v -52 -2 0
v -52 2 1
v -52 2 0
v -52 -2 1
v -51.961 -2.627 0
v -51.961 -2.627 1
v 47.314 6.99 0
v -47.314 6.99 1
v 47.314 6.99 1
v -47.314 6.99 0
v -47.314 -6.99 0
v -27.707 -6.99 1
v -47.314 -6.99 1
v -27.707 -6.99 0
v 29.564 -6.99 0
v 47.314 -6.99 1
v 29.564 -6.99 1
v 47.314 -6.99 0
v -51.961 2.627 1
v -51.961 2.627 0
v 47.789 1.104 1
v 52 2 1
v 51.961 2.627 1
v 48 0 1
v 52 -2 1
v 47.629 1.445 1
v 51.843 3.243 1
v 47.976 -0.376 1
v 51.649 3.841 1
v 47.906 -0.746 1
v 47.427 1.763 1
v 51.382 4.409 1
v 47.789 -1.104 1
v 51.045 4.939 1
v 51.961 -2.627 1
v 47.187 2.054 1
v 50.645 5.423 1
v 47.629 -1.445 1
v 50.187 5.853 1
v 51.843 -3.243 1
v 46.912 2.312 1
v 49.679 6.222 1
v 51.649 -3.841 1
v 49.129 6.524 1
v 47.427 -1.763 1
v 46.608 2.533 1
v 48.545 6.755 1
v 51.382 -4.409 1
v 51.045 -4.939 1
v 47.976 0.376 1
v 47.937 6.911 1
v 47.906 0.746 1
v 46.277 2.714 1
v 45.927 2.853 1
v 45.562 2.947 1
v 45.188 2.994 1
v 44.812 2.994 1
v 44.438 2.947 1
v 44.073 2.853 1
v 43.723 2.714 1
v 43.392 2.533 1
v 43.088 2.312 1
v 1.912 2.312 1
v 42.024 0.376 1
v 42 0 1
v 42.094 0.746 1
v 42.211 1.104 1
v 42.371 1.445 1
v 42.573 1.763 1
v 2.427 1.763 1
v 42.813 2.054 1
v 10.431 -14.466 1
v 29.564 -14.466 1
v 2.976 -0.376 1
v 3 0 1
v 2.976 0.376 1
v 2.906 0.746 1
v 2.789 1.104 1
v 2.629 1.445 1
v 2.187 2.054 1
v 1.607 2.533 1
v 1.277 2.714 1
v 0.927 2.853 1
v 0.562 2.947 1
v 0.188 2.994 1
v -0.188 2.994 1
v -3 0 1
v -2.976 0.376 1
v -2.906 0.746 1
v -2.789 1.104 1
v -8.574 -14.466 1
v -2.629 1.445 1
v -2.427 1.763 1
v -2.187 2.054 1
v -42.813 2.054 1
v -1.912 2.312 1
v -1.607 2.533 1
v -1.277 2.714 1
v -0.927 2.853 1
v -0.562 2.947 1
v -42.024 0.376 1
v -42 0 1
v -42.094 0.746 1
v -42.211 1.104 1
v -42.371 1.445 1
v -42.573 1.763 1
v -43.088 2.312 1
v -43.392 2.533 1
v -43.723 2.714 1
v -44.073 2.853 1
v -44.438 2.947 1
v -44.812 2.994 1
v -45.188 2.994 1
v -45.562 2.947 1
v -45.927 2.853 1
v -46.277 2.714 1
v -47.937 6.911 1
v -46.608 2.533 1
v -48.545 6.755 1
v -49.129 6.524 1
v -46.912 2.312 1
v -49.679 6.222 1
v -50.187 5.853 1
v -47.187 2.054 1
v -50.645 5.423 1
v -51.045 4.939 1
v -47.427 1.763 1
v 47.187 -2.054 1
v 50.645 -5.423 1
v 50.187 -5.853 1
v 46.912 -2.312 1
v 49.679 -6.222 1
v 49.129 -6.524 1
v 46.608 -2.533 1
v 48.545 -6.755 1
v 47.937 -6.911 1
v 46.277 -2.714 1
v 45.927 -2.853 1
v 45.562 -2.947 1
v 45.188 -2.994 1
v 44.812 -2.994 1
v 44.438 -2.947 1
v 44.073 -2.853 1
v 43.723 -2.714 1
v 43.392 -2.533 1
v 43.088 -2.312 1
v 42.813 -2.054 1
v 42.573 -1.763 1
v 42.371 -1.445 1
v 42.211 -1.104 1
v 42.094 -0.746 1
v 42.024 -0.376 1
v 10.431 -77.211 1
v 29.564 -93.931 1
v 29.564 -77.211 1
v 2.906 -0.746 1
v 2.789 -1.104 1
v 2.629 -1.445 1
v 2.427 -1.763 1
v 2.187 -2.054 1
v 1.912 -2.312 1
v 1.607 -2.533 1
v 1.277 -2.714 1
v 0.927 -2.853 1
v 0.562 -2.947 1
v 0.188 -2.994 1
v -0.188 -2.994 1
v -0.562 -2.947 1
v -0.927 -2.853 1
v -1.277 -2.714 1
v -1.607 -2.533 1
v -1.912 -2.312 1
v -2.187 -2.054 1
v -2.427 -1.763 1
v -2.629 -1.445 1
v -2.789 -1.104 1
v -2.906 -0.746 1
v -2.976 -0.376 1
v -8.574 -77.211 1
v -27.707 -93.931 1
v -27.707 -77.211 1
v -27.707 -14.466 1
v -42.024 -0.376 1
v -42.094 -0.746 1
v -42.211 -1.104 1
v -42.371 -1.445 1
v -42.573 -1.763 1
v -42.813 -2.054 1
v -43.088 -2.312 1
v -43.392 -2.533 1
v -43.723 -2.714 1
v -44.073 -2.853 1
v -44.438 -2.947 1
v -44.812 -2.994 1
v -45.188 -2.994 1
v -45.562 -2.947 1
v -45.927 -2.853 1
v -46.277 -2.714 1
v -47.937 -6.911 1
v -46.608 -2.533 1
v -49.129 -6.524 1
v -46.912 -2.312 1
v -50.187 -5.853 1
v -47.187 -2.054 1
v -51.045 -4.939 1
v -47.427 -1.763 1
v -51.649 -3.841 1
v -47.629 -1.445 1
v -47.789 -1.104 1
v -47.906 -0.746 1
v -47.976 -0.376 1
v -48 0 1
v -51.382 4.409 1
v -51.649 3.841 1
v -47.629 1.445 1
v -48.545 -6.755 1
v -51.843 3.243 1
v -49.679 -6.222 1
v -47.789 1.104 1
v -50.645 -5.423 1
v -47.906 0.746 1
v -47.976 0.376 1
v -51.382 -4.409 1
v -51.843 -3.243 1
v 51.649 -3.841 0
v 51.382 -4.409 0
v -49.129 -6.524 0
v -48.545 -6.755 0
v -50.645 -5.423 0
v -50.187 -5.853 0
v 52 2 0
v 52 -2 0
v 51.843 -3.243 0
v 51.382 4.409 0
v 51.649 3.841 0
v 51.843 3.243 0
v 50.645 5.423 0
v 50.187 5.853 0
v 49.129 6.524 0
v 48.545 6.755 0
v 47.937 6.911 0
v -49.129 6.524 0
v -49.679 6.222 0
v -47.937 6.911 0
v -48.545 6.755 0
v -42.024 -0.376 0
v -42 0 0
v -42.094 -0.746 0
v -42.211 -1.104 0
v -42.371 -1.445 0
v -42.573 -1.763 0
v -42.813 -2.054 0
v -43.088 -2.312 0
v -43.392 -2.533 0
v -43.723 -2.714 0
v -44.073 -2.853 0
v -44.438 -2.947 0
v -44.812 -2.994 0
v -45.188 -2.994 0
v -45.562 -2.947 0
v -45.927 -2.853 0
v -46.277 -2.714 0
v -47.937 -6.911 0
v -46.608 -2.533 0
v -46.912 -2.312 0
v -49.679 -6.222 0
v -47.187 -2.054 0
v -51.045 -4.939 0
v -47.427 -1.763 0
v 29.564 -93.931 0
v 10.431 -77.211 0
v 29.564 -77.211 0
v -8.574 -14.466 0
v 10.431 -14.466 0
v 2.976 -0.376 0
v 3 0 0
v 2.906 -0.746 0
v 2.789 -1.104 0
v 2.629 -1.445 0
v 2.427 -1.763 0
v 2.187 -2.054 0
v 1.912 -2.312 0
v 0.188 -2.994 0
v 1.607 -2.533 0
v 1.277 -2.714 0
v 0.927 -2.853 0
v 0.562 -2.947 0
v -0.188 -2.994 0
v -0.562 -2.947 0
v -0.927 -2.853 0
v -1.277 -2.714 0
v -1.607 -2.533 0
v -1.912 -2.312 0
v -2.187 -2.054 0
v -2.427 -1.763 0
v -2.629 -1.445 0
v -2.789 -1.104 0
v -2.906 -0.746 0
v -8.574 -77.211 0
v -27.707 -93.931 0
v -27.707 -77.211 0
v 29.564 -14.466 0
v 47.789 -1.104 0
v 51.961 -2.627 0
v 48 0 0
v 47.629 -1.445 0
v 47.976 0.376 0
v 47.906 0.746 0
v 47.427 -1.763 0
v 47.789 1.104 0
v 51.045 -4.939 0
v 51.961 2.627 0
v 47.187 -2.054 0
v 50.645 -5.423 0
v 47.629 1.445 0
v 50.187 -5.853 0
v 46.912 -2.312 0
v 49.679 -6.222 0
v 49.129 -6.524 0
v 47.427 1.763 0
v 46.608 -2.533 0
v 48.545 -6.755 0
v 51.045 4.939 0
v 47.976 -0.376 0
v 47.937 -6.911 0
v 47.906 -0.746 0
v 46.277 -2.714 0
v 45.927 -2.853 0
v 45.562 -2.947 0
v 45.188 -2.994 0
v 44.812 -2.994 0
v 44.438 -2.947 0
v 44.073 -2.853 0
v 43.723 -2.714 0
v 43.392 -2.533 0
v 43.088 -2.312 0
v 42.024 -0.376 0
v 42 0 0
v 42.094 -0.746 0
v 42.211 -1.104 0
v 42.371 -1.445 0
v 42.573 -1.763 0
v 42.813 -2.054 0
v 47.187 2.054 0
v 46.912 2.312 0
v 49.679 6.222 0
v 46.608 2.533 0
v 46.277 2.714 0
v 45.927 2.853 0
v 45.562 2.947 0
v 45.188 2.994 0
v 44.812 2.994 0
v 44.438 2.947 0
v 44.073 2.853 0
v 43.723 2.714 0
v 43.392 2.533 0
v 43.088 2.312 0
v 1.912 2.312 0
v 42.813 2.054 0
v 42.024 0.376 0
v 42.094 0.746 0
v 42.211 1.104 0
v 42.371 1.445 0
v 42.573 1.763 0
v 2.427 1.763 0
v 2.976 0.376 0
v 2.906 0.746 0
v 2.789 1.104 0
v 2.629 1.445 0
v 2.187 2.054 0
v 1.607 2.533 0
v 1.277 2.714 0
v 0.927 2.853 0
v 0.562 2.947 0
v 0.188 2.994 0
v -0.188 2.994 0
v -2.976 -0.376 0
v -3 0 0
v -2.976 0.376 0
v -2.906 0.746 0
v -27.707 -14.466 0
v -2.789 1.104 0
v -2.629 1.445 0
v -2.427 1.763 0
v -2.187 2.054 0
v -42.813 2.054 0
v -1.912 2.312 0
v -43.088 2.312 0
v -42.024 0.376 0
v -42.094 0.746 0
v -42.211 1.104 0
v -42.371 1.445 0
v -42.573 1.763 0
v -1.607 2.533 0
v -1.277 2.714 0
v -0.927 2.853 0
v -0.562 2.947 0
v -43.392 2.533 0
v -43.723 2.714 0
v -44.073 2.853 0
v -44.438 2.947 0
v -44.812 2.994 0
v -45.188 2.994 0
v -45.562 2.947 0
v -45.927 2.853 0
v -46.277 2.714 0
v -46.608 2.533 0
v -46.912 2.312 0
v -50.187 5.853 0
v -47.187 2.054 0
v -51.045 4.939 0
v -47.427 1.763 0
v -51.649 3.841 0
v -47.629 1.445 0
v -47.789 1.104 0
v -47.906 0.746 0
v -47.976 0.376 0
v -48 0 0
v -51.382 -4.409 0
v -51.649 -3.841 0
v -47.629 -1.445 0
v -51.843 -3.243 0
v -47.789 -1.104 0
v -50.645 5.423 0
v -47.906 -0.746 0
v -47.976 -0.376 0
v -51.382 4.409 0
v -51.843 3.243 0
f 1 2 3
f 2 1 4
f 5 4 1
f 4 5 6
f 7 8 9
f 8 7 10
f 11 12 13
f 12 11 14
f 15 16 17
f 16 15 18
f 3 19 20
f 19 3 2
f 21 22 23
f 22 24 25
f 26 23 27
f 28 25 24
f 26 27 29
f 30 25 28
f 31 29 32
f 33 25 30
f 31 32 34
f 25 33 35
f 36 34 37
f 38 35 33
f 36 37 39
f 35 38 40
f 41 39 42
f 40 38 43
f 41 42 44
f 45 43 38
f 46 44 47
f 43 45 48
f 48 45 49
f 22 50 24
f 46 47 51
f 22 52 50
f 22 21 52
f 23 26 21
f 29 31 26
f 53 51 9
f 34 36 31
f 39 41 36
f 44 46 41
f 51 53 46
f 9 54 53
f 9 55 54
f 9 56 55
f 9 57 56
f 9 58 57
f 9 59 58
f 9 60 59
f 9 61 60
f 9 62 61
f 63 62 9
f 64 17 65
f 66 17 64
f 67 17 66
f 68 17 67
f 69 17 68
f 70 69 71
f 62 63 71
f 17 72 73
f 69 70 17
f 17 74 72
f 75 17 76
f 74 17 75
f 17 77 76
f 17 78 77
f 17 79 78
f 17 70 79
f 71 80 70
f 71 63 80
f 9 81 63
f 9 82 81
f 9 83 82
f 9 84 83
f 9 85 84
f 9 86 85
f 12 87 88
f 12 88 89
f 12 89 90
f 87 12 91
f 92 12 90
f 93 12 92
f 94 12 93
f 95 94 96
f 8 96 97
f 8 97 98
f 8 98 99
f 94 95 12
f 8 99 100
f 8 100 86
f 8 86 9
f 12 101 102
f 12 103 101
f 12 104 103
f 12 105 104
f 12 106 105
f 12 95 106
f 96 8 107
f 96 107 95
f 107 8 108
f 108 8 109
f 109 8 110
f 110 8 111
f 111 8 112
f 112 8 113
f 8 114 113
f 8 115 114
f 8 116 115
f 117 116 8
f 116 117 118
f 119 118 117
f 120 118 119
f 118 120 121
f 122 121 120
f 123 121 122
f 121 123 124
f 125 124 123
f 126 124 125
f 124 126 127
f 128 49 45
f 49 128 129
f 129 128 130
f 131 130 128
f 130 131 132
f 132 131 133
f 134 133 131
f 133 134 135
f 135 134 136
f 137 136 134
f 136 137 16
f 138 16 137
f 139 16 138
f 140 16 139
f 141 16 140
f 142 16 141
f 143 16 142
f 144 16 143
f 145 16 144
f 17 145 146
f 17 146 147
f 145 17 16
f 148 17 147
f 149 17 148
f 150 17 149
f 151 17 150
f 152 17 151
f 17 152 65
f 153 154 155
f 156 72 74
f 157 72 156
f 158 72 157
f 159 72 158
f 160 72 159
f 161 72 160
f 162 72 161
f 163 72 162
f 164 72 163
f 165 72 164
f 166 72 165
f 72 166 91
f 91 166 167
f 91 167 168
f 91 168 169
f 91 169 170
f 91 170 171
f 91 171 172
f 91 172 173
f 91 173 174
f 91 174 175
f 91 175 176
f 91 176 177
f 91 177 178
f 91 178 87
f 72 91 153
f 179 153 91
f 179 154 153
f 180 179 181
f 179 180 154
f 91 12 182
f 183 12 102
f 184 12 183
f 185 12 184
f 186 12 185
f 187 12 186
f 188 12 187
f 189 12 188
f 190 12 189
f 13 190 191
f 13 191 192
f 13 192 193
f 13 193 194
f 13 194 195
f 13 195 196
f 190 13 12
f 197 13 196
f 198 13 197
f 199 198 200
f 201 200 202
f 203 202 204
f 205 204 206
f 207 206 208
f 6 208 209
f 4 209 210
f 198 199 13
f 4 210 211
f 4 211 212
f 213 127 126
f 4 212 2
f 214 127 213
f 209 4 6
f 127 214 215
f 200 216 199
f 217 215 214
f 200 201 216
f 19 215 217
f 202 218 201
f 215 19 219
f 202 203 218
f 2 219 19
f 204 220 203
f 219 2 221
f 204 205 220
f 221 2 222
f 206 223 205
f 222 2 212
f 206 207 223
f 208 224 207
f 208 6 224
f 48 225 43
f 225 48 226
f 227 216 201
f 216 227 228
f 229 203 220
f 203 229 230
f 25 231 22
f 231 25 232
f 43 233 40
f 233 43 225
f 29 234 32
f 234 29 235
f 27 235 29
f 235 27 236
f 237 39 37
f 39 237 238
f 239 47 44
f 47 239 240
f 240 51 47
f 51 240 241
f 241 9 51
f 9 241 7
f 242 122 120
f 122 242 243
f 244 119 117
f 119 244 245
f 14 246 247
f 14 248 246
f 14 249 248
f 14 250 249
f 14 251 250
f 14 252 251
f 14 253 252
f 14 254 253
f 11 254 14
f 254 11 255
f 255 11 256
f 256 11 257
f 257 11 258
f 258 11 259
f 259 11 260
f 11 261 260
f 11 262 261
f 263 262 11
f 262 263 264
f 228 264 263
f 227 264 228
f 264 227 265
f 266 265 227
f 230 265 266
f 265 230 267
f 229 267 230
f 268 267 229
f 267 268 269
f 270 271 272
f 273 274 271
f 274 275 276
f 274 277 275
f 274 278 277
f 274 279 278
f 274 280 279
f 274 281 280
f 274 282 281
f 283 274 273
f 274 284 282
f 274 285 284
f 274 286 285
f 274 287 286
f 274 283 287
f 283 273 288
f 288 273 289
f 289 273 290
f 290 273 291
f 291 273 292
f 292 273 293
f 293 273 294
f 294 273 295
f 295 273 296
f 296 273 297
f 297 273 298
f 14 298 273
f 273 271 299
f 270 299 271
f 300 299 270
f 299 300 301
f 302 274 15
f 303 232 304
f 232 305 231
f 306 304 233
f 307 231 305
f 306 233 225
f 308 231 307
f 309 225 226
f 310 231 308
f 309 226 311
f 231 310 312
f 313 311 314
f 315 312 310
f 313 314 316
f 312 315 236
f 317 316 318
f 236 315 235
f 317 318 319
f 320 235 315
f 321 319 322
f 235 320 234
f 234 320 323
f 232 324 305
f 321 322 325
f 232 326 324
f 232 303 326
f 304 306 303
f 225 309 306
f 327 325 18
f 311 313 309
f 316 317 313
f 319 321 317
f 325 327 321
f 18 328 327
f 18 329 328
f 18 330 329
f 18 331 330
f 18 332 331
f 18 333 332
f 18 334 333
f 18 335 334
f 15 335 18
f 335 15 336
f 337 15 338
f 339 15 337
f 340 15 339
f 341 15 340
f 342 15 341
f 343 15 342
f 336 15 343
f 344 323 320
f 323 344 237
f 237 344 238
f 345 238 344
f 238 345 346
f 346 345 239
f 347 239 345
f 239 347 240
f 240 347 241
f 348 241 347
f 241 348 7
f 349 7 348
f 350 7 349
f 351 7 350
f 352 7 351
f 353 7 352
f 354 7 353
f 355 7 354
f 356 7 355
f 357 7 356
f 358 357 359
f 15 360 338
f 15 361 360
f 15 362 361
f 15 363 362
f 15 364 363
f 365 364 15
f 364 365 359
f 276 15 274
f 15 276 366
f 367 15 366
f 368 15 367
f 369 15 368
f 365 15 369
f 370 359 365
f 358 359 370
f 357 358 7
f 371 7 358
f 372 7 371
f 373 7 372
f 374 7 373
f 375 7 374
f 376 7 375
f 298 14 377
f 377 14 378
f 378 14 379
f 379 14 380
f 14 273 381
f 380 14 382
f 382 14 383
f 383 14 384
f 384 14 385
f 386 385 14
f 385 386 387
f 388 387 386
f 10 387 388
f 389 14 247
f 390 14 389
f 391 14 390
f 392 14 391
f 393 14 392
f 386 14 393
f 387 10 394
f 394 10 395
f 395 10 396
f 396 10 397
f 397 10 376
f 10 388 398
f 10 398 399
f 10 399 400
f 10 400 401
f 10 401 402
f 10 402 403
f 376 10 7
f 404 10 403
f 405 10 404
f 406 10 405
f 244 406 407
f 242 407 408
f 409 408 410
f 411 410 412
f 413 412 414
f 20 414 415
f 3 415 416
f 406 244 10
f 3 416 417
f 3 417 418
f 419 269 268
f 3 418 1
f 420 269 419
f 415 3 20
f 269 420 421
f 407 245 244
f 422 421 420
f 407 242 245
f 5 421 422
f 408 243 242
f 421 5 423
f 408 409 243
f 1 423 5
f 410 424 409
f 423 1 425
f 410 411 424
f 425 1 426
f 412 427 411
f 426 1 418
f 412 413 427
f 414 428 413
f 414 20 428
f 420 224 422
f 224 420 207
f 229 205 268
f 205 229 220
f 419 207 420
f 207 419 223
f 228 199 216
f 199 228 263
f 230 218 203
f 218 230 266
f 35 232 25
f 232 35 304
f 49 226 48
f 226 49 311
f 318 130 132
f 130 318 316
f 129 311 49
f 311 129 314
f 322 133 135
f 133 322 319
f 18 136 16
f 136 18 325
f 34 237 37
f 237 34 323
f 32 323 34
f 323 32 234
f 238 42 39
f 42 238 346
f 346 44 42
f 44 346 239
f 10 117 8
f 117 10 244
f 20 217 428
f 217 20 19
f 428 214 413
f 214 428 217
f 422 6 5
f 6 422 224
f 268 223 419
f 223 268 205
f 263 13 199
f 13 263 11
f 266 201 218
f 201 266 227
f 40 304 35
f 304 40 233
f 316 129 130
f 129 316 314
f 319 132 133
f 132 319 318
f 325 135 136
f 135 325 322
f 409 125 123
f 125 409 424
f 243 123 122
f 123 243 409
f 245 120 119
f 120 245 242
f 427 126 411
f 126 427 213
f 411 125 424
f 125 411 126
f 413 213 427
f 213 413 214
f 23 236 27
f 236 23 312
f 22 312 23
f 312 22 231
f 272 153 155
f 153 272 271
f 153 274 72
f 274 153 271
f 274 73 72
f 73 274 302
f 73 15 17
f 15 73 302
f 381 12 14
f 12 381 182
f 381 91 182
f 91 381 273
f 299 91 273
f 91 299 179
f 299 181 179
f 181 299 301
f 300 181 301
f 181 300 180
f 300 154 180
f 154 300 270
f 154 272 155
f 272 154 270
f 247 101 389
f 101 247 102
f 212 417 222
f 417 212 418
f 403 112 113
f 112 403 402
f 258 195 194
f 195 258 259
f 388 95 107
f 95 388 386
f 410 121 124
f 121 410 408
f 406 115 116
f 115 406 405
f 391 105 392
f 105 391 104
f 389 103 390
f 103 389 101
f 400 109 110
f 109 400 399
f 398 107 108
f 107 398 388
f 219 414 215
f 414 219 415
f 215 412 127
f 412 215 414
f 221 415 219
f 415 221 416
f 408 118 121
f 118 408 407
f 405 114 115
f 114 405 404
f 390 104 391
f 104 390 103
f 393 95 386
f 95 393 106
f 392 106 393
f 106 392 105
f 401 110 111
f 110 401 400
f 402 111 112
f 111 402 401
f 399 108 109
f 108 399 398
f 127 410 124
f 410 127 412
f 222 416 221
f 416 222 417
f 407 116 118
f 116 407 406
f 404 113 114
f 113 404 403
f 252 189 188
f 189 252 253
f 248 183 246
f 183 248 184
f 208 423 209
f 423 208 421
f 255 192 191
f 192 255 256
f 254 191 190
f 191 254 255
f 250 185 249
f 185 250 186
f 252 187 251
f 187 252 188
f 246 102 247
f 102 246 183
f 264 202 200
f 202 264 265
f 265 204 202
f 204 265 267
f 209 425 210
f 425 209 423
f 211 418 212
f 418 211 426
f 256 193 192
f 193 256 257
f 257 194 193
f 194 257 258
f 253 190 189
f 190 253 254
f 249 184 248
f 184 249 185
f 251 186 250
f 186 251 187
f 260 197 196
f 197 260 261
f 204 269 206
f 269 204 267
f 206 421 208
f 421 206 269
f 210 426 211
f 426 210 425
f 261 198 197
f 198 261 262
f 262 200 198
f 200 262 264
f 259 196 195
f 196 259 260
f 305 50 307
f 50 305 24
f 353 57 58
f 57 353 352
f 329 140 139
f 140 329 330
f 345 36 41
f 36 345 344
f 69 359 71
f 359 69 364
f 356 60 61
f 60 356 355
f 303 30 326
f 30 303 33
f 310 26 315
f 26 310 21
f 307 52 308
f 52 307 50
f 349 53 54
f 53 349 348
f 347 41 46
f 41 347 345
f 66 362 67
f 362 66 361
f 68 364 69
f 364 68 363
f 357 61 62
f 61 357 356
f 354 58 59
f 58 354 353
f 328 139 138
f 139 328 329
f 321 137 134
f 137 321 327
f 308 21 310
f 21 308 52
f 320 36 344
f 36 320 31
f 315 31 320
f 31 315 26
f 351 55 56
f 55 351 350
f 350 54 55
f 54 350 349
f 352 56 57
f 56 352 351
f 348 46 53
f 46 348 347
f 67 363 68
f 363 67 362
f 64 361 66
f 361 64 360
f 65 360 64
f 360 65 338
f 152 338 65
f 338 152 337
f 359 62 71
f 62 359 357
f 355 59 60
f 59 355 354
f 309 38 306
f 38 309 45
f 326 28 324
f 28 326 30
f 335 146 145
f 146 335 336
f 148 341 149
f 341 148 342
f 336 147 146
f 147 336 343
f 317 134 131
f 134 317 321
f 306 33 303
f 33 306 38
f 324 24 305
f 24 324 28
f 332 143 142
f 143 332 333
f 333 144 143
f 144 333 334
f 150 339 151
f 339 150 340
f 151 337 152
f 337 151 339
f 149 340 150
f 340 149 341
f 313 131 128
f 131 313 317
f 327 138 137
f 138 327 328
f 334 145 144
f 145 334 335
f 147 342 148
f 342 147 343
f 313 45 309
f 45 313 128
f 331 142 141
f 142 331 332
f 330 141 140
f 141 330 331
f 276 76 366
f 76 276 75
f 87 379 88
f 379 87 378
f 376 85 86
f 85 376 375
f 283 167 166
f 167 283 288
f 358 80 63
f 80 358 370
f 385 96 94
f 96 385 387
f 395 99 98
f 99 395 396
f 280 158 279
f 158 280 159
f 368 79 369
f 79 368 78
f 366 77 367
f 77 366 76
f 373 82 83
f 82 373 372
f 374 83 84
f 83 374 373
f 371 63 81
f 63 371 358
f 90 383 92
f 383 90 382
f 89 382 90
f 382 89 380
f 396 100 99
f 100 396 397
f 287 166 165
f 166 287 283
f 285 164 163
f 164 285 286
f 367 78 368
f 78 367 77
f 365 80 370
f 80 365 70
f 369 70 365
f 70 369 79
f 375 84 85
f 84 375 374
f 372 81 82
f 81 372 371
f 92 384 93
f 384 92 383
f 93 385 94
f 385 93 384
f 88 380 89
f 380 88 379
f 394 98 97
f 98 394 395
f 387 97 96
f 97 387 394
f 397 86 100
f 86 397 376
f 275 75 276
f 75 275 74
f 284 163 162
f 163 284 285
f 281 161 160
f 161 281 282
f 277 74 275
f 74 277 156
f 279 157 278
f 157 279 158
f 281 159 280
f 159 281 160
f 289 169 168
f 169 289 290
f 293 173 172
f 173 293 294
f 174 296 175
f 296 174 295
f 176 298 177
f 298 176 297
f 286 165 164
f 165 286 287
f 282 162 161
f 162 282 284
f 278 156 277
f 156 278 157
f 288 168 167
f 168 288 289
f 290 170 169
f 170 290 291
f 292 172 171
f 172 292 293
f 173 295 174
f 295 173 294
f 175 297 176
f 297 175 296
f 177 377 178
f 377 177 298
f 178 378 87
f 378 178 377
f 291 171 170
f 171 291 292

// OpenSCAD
$fn = 50;


difference() {
	union() {
		translate(v = [0, 0, 0]) {
			rotate(a = [0, 0, 0]) {
				hull() {
					translate(v = [-47.0000000000, 2.0000000000, 0]) {
						rotate(a = [0, 0, 0]) {
							translate(v = [0, 0, 0]) {
								rotate(a = [0, 0, 0]) {
									cylinder(h = 1, r = 5);
								}
							}
						}
					}
					translate(v = [47.0000000000, 2.0000000000, 0]) {
						rotate(a = [0, 0, 0]) {
							translate(v = [0, 0, 0]) {
								rotate(a = [0, 0, 0]) {
									cylinder(h = 1, r = 5);
								}
							}
						}
					}
					translate(v = [-47.0000000000, -2.0000000000, 0]) {
						rotate(a = [0, 0, 0]) {
							translate(v = [0, 0, 0]) {
								rotate(a = [0, 0, 0]) {
									cylinder(h = 1, r = 5);
								}
							}
						}
					}
					translate(v = [47.0000000000, -2.0000000000, 0]) {
						rotate(a = [0, 0, 0]) {
							translate(v = [0, 0, 0]) {
								rotate(a = [0, 0, 0]) {
									cylinder(h = 1, r = 5);
								}
							}
						}
					}
				}
			}
		}
		translate(v = [0, 0, 0]) {
			rotate(a = [0, 0, 0]) {
				linear_extrude(height = 1) {
					text(font = "DejaVu Sans Mono:style=Bold", halign = "center", size = 95, text = "I", valign = "top");
				}
			}
		}
	}
	union() {
		translate(v = [-45.0000000000, 0.0000000000, -125.0000000000]) {
			rotate(a = [0, 0, 0]) {
				cylinder(h = 250, r = 3.0000000000);
			}
		}
		translate(v = [45.0000000000, 0.0000000000, -125.0000000000]) {
			rotate(a = [0, 0, 0]) {
				cylinder(h = 250, r = 3.0000000000);
			}
		}
		translate(v = [45.0000000000, 0.0000000000, -125.0000000000]) {
			rotate(a = [0, 0, 0]) {
				cylinder(h = 250, r = 3.0000000000);
			}
		}
		translate(v = [0, 0, -125.0000000000]) {
			rotate(a = [0, 0, 0]) {
				cylinder(h = 250, r = 3.0000000000);
			}
		}
	}
}
